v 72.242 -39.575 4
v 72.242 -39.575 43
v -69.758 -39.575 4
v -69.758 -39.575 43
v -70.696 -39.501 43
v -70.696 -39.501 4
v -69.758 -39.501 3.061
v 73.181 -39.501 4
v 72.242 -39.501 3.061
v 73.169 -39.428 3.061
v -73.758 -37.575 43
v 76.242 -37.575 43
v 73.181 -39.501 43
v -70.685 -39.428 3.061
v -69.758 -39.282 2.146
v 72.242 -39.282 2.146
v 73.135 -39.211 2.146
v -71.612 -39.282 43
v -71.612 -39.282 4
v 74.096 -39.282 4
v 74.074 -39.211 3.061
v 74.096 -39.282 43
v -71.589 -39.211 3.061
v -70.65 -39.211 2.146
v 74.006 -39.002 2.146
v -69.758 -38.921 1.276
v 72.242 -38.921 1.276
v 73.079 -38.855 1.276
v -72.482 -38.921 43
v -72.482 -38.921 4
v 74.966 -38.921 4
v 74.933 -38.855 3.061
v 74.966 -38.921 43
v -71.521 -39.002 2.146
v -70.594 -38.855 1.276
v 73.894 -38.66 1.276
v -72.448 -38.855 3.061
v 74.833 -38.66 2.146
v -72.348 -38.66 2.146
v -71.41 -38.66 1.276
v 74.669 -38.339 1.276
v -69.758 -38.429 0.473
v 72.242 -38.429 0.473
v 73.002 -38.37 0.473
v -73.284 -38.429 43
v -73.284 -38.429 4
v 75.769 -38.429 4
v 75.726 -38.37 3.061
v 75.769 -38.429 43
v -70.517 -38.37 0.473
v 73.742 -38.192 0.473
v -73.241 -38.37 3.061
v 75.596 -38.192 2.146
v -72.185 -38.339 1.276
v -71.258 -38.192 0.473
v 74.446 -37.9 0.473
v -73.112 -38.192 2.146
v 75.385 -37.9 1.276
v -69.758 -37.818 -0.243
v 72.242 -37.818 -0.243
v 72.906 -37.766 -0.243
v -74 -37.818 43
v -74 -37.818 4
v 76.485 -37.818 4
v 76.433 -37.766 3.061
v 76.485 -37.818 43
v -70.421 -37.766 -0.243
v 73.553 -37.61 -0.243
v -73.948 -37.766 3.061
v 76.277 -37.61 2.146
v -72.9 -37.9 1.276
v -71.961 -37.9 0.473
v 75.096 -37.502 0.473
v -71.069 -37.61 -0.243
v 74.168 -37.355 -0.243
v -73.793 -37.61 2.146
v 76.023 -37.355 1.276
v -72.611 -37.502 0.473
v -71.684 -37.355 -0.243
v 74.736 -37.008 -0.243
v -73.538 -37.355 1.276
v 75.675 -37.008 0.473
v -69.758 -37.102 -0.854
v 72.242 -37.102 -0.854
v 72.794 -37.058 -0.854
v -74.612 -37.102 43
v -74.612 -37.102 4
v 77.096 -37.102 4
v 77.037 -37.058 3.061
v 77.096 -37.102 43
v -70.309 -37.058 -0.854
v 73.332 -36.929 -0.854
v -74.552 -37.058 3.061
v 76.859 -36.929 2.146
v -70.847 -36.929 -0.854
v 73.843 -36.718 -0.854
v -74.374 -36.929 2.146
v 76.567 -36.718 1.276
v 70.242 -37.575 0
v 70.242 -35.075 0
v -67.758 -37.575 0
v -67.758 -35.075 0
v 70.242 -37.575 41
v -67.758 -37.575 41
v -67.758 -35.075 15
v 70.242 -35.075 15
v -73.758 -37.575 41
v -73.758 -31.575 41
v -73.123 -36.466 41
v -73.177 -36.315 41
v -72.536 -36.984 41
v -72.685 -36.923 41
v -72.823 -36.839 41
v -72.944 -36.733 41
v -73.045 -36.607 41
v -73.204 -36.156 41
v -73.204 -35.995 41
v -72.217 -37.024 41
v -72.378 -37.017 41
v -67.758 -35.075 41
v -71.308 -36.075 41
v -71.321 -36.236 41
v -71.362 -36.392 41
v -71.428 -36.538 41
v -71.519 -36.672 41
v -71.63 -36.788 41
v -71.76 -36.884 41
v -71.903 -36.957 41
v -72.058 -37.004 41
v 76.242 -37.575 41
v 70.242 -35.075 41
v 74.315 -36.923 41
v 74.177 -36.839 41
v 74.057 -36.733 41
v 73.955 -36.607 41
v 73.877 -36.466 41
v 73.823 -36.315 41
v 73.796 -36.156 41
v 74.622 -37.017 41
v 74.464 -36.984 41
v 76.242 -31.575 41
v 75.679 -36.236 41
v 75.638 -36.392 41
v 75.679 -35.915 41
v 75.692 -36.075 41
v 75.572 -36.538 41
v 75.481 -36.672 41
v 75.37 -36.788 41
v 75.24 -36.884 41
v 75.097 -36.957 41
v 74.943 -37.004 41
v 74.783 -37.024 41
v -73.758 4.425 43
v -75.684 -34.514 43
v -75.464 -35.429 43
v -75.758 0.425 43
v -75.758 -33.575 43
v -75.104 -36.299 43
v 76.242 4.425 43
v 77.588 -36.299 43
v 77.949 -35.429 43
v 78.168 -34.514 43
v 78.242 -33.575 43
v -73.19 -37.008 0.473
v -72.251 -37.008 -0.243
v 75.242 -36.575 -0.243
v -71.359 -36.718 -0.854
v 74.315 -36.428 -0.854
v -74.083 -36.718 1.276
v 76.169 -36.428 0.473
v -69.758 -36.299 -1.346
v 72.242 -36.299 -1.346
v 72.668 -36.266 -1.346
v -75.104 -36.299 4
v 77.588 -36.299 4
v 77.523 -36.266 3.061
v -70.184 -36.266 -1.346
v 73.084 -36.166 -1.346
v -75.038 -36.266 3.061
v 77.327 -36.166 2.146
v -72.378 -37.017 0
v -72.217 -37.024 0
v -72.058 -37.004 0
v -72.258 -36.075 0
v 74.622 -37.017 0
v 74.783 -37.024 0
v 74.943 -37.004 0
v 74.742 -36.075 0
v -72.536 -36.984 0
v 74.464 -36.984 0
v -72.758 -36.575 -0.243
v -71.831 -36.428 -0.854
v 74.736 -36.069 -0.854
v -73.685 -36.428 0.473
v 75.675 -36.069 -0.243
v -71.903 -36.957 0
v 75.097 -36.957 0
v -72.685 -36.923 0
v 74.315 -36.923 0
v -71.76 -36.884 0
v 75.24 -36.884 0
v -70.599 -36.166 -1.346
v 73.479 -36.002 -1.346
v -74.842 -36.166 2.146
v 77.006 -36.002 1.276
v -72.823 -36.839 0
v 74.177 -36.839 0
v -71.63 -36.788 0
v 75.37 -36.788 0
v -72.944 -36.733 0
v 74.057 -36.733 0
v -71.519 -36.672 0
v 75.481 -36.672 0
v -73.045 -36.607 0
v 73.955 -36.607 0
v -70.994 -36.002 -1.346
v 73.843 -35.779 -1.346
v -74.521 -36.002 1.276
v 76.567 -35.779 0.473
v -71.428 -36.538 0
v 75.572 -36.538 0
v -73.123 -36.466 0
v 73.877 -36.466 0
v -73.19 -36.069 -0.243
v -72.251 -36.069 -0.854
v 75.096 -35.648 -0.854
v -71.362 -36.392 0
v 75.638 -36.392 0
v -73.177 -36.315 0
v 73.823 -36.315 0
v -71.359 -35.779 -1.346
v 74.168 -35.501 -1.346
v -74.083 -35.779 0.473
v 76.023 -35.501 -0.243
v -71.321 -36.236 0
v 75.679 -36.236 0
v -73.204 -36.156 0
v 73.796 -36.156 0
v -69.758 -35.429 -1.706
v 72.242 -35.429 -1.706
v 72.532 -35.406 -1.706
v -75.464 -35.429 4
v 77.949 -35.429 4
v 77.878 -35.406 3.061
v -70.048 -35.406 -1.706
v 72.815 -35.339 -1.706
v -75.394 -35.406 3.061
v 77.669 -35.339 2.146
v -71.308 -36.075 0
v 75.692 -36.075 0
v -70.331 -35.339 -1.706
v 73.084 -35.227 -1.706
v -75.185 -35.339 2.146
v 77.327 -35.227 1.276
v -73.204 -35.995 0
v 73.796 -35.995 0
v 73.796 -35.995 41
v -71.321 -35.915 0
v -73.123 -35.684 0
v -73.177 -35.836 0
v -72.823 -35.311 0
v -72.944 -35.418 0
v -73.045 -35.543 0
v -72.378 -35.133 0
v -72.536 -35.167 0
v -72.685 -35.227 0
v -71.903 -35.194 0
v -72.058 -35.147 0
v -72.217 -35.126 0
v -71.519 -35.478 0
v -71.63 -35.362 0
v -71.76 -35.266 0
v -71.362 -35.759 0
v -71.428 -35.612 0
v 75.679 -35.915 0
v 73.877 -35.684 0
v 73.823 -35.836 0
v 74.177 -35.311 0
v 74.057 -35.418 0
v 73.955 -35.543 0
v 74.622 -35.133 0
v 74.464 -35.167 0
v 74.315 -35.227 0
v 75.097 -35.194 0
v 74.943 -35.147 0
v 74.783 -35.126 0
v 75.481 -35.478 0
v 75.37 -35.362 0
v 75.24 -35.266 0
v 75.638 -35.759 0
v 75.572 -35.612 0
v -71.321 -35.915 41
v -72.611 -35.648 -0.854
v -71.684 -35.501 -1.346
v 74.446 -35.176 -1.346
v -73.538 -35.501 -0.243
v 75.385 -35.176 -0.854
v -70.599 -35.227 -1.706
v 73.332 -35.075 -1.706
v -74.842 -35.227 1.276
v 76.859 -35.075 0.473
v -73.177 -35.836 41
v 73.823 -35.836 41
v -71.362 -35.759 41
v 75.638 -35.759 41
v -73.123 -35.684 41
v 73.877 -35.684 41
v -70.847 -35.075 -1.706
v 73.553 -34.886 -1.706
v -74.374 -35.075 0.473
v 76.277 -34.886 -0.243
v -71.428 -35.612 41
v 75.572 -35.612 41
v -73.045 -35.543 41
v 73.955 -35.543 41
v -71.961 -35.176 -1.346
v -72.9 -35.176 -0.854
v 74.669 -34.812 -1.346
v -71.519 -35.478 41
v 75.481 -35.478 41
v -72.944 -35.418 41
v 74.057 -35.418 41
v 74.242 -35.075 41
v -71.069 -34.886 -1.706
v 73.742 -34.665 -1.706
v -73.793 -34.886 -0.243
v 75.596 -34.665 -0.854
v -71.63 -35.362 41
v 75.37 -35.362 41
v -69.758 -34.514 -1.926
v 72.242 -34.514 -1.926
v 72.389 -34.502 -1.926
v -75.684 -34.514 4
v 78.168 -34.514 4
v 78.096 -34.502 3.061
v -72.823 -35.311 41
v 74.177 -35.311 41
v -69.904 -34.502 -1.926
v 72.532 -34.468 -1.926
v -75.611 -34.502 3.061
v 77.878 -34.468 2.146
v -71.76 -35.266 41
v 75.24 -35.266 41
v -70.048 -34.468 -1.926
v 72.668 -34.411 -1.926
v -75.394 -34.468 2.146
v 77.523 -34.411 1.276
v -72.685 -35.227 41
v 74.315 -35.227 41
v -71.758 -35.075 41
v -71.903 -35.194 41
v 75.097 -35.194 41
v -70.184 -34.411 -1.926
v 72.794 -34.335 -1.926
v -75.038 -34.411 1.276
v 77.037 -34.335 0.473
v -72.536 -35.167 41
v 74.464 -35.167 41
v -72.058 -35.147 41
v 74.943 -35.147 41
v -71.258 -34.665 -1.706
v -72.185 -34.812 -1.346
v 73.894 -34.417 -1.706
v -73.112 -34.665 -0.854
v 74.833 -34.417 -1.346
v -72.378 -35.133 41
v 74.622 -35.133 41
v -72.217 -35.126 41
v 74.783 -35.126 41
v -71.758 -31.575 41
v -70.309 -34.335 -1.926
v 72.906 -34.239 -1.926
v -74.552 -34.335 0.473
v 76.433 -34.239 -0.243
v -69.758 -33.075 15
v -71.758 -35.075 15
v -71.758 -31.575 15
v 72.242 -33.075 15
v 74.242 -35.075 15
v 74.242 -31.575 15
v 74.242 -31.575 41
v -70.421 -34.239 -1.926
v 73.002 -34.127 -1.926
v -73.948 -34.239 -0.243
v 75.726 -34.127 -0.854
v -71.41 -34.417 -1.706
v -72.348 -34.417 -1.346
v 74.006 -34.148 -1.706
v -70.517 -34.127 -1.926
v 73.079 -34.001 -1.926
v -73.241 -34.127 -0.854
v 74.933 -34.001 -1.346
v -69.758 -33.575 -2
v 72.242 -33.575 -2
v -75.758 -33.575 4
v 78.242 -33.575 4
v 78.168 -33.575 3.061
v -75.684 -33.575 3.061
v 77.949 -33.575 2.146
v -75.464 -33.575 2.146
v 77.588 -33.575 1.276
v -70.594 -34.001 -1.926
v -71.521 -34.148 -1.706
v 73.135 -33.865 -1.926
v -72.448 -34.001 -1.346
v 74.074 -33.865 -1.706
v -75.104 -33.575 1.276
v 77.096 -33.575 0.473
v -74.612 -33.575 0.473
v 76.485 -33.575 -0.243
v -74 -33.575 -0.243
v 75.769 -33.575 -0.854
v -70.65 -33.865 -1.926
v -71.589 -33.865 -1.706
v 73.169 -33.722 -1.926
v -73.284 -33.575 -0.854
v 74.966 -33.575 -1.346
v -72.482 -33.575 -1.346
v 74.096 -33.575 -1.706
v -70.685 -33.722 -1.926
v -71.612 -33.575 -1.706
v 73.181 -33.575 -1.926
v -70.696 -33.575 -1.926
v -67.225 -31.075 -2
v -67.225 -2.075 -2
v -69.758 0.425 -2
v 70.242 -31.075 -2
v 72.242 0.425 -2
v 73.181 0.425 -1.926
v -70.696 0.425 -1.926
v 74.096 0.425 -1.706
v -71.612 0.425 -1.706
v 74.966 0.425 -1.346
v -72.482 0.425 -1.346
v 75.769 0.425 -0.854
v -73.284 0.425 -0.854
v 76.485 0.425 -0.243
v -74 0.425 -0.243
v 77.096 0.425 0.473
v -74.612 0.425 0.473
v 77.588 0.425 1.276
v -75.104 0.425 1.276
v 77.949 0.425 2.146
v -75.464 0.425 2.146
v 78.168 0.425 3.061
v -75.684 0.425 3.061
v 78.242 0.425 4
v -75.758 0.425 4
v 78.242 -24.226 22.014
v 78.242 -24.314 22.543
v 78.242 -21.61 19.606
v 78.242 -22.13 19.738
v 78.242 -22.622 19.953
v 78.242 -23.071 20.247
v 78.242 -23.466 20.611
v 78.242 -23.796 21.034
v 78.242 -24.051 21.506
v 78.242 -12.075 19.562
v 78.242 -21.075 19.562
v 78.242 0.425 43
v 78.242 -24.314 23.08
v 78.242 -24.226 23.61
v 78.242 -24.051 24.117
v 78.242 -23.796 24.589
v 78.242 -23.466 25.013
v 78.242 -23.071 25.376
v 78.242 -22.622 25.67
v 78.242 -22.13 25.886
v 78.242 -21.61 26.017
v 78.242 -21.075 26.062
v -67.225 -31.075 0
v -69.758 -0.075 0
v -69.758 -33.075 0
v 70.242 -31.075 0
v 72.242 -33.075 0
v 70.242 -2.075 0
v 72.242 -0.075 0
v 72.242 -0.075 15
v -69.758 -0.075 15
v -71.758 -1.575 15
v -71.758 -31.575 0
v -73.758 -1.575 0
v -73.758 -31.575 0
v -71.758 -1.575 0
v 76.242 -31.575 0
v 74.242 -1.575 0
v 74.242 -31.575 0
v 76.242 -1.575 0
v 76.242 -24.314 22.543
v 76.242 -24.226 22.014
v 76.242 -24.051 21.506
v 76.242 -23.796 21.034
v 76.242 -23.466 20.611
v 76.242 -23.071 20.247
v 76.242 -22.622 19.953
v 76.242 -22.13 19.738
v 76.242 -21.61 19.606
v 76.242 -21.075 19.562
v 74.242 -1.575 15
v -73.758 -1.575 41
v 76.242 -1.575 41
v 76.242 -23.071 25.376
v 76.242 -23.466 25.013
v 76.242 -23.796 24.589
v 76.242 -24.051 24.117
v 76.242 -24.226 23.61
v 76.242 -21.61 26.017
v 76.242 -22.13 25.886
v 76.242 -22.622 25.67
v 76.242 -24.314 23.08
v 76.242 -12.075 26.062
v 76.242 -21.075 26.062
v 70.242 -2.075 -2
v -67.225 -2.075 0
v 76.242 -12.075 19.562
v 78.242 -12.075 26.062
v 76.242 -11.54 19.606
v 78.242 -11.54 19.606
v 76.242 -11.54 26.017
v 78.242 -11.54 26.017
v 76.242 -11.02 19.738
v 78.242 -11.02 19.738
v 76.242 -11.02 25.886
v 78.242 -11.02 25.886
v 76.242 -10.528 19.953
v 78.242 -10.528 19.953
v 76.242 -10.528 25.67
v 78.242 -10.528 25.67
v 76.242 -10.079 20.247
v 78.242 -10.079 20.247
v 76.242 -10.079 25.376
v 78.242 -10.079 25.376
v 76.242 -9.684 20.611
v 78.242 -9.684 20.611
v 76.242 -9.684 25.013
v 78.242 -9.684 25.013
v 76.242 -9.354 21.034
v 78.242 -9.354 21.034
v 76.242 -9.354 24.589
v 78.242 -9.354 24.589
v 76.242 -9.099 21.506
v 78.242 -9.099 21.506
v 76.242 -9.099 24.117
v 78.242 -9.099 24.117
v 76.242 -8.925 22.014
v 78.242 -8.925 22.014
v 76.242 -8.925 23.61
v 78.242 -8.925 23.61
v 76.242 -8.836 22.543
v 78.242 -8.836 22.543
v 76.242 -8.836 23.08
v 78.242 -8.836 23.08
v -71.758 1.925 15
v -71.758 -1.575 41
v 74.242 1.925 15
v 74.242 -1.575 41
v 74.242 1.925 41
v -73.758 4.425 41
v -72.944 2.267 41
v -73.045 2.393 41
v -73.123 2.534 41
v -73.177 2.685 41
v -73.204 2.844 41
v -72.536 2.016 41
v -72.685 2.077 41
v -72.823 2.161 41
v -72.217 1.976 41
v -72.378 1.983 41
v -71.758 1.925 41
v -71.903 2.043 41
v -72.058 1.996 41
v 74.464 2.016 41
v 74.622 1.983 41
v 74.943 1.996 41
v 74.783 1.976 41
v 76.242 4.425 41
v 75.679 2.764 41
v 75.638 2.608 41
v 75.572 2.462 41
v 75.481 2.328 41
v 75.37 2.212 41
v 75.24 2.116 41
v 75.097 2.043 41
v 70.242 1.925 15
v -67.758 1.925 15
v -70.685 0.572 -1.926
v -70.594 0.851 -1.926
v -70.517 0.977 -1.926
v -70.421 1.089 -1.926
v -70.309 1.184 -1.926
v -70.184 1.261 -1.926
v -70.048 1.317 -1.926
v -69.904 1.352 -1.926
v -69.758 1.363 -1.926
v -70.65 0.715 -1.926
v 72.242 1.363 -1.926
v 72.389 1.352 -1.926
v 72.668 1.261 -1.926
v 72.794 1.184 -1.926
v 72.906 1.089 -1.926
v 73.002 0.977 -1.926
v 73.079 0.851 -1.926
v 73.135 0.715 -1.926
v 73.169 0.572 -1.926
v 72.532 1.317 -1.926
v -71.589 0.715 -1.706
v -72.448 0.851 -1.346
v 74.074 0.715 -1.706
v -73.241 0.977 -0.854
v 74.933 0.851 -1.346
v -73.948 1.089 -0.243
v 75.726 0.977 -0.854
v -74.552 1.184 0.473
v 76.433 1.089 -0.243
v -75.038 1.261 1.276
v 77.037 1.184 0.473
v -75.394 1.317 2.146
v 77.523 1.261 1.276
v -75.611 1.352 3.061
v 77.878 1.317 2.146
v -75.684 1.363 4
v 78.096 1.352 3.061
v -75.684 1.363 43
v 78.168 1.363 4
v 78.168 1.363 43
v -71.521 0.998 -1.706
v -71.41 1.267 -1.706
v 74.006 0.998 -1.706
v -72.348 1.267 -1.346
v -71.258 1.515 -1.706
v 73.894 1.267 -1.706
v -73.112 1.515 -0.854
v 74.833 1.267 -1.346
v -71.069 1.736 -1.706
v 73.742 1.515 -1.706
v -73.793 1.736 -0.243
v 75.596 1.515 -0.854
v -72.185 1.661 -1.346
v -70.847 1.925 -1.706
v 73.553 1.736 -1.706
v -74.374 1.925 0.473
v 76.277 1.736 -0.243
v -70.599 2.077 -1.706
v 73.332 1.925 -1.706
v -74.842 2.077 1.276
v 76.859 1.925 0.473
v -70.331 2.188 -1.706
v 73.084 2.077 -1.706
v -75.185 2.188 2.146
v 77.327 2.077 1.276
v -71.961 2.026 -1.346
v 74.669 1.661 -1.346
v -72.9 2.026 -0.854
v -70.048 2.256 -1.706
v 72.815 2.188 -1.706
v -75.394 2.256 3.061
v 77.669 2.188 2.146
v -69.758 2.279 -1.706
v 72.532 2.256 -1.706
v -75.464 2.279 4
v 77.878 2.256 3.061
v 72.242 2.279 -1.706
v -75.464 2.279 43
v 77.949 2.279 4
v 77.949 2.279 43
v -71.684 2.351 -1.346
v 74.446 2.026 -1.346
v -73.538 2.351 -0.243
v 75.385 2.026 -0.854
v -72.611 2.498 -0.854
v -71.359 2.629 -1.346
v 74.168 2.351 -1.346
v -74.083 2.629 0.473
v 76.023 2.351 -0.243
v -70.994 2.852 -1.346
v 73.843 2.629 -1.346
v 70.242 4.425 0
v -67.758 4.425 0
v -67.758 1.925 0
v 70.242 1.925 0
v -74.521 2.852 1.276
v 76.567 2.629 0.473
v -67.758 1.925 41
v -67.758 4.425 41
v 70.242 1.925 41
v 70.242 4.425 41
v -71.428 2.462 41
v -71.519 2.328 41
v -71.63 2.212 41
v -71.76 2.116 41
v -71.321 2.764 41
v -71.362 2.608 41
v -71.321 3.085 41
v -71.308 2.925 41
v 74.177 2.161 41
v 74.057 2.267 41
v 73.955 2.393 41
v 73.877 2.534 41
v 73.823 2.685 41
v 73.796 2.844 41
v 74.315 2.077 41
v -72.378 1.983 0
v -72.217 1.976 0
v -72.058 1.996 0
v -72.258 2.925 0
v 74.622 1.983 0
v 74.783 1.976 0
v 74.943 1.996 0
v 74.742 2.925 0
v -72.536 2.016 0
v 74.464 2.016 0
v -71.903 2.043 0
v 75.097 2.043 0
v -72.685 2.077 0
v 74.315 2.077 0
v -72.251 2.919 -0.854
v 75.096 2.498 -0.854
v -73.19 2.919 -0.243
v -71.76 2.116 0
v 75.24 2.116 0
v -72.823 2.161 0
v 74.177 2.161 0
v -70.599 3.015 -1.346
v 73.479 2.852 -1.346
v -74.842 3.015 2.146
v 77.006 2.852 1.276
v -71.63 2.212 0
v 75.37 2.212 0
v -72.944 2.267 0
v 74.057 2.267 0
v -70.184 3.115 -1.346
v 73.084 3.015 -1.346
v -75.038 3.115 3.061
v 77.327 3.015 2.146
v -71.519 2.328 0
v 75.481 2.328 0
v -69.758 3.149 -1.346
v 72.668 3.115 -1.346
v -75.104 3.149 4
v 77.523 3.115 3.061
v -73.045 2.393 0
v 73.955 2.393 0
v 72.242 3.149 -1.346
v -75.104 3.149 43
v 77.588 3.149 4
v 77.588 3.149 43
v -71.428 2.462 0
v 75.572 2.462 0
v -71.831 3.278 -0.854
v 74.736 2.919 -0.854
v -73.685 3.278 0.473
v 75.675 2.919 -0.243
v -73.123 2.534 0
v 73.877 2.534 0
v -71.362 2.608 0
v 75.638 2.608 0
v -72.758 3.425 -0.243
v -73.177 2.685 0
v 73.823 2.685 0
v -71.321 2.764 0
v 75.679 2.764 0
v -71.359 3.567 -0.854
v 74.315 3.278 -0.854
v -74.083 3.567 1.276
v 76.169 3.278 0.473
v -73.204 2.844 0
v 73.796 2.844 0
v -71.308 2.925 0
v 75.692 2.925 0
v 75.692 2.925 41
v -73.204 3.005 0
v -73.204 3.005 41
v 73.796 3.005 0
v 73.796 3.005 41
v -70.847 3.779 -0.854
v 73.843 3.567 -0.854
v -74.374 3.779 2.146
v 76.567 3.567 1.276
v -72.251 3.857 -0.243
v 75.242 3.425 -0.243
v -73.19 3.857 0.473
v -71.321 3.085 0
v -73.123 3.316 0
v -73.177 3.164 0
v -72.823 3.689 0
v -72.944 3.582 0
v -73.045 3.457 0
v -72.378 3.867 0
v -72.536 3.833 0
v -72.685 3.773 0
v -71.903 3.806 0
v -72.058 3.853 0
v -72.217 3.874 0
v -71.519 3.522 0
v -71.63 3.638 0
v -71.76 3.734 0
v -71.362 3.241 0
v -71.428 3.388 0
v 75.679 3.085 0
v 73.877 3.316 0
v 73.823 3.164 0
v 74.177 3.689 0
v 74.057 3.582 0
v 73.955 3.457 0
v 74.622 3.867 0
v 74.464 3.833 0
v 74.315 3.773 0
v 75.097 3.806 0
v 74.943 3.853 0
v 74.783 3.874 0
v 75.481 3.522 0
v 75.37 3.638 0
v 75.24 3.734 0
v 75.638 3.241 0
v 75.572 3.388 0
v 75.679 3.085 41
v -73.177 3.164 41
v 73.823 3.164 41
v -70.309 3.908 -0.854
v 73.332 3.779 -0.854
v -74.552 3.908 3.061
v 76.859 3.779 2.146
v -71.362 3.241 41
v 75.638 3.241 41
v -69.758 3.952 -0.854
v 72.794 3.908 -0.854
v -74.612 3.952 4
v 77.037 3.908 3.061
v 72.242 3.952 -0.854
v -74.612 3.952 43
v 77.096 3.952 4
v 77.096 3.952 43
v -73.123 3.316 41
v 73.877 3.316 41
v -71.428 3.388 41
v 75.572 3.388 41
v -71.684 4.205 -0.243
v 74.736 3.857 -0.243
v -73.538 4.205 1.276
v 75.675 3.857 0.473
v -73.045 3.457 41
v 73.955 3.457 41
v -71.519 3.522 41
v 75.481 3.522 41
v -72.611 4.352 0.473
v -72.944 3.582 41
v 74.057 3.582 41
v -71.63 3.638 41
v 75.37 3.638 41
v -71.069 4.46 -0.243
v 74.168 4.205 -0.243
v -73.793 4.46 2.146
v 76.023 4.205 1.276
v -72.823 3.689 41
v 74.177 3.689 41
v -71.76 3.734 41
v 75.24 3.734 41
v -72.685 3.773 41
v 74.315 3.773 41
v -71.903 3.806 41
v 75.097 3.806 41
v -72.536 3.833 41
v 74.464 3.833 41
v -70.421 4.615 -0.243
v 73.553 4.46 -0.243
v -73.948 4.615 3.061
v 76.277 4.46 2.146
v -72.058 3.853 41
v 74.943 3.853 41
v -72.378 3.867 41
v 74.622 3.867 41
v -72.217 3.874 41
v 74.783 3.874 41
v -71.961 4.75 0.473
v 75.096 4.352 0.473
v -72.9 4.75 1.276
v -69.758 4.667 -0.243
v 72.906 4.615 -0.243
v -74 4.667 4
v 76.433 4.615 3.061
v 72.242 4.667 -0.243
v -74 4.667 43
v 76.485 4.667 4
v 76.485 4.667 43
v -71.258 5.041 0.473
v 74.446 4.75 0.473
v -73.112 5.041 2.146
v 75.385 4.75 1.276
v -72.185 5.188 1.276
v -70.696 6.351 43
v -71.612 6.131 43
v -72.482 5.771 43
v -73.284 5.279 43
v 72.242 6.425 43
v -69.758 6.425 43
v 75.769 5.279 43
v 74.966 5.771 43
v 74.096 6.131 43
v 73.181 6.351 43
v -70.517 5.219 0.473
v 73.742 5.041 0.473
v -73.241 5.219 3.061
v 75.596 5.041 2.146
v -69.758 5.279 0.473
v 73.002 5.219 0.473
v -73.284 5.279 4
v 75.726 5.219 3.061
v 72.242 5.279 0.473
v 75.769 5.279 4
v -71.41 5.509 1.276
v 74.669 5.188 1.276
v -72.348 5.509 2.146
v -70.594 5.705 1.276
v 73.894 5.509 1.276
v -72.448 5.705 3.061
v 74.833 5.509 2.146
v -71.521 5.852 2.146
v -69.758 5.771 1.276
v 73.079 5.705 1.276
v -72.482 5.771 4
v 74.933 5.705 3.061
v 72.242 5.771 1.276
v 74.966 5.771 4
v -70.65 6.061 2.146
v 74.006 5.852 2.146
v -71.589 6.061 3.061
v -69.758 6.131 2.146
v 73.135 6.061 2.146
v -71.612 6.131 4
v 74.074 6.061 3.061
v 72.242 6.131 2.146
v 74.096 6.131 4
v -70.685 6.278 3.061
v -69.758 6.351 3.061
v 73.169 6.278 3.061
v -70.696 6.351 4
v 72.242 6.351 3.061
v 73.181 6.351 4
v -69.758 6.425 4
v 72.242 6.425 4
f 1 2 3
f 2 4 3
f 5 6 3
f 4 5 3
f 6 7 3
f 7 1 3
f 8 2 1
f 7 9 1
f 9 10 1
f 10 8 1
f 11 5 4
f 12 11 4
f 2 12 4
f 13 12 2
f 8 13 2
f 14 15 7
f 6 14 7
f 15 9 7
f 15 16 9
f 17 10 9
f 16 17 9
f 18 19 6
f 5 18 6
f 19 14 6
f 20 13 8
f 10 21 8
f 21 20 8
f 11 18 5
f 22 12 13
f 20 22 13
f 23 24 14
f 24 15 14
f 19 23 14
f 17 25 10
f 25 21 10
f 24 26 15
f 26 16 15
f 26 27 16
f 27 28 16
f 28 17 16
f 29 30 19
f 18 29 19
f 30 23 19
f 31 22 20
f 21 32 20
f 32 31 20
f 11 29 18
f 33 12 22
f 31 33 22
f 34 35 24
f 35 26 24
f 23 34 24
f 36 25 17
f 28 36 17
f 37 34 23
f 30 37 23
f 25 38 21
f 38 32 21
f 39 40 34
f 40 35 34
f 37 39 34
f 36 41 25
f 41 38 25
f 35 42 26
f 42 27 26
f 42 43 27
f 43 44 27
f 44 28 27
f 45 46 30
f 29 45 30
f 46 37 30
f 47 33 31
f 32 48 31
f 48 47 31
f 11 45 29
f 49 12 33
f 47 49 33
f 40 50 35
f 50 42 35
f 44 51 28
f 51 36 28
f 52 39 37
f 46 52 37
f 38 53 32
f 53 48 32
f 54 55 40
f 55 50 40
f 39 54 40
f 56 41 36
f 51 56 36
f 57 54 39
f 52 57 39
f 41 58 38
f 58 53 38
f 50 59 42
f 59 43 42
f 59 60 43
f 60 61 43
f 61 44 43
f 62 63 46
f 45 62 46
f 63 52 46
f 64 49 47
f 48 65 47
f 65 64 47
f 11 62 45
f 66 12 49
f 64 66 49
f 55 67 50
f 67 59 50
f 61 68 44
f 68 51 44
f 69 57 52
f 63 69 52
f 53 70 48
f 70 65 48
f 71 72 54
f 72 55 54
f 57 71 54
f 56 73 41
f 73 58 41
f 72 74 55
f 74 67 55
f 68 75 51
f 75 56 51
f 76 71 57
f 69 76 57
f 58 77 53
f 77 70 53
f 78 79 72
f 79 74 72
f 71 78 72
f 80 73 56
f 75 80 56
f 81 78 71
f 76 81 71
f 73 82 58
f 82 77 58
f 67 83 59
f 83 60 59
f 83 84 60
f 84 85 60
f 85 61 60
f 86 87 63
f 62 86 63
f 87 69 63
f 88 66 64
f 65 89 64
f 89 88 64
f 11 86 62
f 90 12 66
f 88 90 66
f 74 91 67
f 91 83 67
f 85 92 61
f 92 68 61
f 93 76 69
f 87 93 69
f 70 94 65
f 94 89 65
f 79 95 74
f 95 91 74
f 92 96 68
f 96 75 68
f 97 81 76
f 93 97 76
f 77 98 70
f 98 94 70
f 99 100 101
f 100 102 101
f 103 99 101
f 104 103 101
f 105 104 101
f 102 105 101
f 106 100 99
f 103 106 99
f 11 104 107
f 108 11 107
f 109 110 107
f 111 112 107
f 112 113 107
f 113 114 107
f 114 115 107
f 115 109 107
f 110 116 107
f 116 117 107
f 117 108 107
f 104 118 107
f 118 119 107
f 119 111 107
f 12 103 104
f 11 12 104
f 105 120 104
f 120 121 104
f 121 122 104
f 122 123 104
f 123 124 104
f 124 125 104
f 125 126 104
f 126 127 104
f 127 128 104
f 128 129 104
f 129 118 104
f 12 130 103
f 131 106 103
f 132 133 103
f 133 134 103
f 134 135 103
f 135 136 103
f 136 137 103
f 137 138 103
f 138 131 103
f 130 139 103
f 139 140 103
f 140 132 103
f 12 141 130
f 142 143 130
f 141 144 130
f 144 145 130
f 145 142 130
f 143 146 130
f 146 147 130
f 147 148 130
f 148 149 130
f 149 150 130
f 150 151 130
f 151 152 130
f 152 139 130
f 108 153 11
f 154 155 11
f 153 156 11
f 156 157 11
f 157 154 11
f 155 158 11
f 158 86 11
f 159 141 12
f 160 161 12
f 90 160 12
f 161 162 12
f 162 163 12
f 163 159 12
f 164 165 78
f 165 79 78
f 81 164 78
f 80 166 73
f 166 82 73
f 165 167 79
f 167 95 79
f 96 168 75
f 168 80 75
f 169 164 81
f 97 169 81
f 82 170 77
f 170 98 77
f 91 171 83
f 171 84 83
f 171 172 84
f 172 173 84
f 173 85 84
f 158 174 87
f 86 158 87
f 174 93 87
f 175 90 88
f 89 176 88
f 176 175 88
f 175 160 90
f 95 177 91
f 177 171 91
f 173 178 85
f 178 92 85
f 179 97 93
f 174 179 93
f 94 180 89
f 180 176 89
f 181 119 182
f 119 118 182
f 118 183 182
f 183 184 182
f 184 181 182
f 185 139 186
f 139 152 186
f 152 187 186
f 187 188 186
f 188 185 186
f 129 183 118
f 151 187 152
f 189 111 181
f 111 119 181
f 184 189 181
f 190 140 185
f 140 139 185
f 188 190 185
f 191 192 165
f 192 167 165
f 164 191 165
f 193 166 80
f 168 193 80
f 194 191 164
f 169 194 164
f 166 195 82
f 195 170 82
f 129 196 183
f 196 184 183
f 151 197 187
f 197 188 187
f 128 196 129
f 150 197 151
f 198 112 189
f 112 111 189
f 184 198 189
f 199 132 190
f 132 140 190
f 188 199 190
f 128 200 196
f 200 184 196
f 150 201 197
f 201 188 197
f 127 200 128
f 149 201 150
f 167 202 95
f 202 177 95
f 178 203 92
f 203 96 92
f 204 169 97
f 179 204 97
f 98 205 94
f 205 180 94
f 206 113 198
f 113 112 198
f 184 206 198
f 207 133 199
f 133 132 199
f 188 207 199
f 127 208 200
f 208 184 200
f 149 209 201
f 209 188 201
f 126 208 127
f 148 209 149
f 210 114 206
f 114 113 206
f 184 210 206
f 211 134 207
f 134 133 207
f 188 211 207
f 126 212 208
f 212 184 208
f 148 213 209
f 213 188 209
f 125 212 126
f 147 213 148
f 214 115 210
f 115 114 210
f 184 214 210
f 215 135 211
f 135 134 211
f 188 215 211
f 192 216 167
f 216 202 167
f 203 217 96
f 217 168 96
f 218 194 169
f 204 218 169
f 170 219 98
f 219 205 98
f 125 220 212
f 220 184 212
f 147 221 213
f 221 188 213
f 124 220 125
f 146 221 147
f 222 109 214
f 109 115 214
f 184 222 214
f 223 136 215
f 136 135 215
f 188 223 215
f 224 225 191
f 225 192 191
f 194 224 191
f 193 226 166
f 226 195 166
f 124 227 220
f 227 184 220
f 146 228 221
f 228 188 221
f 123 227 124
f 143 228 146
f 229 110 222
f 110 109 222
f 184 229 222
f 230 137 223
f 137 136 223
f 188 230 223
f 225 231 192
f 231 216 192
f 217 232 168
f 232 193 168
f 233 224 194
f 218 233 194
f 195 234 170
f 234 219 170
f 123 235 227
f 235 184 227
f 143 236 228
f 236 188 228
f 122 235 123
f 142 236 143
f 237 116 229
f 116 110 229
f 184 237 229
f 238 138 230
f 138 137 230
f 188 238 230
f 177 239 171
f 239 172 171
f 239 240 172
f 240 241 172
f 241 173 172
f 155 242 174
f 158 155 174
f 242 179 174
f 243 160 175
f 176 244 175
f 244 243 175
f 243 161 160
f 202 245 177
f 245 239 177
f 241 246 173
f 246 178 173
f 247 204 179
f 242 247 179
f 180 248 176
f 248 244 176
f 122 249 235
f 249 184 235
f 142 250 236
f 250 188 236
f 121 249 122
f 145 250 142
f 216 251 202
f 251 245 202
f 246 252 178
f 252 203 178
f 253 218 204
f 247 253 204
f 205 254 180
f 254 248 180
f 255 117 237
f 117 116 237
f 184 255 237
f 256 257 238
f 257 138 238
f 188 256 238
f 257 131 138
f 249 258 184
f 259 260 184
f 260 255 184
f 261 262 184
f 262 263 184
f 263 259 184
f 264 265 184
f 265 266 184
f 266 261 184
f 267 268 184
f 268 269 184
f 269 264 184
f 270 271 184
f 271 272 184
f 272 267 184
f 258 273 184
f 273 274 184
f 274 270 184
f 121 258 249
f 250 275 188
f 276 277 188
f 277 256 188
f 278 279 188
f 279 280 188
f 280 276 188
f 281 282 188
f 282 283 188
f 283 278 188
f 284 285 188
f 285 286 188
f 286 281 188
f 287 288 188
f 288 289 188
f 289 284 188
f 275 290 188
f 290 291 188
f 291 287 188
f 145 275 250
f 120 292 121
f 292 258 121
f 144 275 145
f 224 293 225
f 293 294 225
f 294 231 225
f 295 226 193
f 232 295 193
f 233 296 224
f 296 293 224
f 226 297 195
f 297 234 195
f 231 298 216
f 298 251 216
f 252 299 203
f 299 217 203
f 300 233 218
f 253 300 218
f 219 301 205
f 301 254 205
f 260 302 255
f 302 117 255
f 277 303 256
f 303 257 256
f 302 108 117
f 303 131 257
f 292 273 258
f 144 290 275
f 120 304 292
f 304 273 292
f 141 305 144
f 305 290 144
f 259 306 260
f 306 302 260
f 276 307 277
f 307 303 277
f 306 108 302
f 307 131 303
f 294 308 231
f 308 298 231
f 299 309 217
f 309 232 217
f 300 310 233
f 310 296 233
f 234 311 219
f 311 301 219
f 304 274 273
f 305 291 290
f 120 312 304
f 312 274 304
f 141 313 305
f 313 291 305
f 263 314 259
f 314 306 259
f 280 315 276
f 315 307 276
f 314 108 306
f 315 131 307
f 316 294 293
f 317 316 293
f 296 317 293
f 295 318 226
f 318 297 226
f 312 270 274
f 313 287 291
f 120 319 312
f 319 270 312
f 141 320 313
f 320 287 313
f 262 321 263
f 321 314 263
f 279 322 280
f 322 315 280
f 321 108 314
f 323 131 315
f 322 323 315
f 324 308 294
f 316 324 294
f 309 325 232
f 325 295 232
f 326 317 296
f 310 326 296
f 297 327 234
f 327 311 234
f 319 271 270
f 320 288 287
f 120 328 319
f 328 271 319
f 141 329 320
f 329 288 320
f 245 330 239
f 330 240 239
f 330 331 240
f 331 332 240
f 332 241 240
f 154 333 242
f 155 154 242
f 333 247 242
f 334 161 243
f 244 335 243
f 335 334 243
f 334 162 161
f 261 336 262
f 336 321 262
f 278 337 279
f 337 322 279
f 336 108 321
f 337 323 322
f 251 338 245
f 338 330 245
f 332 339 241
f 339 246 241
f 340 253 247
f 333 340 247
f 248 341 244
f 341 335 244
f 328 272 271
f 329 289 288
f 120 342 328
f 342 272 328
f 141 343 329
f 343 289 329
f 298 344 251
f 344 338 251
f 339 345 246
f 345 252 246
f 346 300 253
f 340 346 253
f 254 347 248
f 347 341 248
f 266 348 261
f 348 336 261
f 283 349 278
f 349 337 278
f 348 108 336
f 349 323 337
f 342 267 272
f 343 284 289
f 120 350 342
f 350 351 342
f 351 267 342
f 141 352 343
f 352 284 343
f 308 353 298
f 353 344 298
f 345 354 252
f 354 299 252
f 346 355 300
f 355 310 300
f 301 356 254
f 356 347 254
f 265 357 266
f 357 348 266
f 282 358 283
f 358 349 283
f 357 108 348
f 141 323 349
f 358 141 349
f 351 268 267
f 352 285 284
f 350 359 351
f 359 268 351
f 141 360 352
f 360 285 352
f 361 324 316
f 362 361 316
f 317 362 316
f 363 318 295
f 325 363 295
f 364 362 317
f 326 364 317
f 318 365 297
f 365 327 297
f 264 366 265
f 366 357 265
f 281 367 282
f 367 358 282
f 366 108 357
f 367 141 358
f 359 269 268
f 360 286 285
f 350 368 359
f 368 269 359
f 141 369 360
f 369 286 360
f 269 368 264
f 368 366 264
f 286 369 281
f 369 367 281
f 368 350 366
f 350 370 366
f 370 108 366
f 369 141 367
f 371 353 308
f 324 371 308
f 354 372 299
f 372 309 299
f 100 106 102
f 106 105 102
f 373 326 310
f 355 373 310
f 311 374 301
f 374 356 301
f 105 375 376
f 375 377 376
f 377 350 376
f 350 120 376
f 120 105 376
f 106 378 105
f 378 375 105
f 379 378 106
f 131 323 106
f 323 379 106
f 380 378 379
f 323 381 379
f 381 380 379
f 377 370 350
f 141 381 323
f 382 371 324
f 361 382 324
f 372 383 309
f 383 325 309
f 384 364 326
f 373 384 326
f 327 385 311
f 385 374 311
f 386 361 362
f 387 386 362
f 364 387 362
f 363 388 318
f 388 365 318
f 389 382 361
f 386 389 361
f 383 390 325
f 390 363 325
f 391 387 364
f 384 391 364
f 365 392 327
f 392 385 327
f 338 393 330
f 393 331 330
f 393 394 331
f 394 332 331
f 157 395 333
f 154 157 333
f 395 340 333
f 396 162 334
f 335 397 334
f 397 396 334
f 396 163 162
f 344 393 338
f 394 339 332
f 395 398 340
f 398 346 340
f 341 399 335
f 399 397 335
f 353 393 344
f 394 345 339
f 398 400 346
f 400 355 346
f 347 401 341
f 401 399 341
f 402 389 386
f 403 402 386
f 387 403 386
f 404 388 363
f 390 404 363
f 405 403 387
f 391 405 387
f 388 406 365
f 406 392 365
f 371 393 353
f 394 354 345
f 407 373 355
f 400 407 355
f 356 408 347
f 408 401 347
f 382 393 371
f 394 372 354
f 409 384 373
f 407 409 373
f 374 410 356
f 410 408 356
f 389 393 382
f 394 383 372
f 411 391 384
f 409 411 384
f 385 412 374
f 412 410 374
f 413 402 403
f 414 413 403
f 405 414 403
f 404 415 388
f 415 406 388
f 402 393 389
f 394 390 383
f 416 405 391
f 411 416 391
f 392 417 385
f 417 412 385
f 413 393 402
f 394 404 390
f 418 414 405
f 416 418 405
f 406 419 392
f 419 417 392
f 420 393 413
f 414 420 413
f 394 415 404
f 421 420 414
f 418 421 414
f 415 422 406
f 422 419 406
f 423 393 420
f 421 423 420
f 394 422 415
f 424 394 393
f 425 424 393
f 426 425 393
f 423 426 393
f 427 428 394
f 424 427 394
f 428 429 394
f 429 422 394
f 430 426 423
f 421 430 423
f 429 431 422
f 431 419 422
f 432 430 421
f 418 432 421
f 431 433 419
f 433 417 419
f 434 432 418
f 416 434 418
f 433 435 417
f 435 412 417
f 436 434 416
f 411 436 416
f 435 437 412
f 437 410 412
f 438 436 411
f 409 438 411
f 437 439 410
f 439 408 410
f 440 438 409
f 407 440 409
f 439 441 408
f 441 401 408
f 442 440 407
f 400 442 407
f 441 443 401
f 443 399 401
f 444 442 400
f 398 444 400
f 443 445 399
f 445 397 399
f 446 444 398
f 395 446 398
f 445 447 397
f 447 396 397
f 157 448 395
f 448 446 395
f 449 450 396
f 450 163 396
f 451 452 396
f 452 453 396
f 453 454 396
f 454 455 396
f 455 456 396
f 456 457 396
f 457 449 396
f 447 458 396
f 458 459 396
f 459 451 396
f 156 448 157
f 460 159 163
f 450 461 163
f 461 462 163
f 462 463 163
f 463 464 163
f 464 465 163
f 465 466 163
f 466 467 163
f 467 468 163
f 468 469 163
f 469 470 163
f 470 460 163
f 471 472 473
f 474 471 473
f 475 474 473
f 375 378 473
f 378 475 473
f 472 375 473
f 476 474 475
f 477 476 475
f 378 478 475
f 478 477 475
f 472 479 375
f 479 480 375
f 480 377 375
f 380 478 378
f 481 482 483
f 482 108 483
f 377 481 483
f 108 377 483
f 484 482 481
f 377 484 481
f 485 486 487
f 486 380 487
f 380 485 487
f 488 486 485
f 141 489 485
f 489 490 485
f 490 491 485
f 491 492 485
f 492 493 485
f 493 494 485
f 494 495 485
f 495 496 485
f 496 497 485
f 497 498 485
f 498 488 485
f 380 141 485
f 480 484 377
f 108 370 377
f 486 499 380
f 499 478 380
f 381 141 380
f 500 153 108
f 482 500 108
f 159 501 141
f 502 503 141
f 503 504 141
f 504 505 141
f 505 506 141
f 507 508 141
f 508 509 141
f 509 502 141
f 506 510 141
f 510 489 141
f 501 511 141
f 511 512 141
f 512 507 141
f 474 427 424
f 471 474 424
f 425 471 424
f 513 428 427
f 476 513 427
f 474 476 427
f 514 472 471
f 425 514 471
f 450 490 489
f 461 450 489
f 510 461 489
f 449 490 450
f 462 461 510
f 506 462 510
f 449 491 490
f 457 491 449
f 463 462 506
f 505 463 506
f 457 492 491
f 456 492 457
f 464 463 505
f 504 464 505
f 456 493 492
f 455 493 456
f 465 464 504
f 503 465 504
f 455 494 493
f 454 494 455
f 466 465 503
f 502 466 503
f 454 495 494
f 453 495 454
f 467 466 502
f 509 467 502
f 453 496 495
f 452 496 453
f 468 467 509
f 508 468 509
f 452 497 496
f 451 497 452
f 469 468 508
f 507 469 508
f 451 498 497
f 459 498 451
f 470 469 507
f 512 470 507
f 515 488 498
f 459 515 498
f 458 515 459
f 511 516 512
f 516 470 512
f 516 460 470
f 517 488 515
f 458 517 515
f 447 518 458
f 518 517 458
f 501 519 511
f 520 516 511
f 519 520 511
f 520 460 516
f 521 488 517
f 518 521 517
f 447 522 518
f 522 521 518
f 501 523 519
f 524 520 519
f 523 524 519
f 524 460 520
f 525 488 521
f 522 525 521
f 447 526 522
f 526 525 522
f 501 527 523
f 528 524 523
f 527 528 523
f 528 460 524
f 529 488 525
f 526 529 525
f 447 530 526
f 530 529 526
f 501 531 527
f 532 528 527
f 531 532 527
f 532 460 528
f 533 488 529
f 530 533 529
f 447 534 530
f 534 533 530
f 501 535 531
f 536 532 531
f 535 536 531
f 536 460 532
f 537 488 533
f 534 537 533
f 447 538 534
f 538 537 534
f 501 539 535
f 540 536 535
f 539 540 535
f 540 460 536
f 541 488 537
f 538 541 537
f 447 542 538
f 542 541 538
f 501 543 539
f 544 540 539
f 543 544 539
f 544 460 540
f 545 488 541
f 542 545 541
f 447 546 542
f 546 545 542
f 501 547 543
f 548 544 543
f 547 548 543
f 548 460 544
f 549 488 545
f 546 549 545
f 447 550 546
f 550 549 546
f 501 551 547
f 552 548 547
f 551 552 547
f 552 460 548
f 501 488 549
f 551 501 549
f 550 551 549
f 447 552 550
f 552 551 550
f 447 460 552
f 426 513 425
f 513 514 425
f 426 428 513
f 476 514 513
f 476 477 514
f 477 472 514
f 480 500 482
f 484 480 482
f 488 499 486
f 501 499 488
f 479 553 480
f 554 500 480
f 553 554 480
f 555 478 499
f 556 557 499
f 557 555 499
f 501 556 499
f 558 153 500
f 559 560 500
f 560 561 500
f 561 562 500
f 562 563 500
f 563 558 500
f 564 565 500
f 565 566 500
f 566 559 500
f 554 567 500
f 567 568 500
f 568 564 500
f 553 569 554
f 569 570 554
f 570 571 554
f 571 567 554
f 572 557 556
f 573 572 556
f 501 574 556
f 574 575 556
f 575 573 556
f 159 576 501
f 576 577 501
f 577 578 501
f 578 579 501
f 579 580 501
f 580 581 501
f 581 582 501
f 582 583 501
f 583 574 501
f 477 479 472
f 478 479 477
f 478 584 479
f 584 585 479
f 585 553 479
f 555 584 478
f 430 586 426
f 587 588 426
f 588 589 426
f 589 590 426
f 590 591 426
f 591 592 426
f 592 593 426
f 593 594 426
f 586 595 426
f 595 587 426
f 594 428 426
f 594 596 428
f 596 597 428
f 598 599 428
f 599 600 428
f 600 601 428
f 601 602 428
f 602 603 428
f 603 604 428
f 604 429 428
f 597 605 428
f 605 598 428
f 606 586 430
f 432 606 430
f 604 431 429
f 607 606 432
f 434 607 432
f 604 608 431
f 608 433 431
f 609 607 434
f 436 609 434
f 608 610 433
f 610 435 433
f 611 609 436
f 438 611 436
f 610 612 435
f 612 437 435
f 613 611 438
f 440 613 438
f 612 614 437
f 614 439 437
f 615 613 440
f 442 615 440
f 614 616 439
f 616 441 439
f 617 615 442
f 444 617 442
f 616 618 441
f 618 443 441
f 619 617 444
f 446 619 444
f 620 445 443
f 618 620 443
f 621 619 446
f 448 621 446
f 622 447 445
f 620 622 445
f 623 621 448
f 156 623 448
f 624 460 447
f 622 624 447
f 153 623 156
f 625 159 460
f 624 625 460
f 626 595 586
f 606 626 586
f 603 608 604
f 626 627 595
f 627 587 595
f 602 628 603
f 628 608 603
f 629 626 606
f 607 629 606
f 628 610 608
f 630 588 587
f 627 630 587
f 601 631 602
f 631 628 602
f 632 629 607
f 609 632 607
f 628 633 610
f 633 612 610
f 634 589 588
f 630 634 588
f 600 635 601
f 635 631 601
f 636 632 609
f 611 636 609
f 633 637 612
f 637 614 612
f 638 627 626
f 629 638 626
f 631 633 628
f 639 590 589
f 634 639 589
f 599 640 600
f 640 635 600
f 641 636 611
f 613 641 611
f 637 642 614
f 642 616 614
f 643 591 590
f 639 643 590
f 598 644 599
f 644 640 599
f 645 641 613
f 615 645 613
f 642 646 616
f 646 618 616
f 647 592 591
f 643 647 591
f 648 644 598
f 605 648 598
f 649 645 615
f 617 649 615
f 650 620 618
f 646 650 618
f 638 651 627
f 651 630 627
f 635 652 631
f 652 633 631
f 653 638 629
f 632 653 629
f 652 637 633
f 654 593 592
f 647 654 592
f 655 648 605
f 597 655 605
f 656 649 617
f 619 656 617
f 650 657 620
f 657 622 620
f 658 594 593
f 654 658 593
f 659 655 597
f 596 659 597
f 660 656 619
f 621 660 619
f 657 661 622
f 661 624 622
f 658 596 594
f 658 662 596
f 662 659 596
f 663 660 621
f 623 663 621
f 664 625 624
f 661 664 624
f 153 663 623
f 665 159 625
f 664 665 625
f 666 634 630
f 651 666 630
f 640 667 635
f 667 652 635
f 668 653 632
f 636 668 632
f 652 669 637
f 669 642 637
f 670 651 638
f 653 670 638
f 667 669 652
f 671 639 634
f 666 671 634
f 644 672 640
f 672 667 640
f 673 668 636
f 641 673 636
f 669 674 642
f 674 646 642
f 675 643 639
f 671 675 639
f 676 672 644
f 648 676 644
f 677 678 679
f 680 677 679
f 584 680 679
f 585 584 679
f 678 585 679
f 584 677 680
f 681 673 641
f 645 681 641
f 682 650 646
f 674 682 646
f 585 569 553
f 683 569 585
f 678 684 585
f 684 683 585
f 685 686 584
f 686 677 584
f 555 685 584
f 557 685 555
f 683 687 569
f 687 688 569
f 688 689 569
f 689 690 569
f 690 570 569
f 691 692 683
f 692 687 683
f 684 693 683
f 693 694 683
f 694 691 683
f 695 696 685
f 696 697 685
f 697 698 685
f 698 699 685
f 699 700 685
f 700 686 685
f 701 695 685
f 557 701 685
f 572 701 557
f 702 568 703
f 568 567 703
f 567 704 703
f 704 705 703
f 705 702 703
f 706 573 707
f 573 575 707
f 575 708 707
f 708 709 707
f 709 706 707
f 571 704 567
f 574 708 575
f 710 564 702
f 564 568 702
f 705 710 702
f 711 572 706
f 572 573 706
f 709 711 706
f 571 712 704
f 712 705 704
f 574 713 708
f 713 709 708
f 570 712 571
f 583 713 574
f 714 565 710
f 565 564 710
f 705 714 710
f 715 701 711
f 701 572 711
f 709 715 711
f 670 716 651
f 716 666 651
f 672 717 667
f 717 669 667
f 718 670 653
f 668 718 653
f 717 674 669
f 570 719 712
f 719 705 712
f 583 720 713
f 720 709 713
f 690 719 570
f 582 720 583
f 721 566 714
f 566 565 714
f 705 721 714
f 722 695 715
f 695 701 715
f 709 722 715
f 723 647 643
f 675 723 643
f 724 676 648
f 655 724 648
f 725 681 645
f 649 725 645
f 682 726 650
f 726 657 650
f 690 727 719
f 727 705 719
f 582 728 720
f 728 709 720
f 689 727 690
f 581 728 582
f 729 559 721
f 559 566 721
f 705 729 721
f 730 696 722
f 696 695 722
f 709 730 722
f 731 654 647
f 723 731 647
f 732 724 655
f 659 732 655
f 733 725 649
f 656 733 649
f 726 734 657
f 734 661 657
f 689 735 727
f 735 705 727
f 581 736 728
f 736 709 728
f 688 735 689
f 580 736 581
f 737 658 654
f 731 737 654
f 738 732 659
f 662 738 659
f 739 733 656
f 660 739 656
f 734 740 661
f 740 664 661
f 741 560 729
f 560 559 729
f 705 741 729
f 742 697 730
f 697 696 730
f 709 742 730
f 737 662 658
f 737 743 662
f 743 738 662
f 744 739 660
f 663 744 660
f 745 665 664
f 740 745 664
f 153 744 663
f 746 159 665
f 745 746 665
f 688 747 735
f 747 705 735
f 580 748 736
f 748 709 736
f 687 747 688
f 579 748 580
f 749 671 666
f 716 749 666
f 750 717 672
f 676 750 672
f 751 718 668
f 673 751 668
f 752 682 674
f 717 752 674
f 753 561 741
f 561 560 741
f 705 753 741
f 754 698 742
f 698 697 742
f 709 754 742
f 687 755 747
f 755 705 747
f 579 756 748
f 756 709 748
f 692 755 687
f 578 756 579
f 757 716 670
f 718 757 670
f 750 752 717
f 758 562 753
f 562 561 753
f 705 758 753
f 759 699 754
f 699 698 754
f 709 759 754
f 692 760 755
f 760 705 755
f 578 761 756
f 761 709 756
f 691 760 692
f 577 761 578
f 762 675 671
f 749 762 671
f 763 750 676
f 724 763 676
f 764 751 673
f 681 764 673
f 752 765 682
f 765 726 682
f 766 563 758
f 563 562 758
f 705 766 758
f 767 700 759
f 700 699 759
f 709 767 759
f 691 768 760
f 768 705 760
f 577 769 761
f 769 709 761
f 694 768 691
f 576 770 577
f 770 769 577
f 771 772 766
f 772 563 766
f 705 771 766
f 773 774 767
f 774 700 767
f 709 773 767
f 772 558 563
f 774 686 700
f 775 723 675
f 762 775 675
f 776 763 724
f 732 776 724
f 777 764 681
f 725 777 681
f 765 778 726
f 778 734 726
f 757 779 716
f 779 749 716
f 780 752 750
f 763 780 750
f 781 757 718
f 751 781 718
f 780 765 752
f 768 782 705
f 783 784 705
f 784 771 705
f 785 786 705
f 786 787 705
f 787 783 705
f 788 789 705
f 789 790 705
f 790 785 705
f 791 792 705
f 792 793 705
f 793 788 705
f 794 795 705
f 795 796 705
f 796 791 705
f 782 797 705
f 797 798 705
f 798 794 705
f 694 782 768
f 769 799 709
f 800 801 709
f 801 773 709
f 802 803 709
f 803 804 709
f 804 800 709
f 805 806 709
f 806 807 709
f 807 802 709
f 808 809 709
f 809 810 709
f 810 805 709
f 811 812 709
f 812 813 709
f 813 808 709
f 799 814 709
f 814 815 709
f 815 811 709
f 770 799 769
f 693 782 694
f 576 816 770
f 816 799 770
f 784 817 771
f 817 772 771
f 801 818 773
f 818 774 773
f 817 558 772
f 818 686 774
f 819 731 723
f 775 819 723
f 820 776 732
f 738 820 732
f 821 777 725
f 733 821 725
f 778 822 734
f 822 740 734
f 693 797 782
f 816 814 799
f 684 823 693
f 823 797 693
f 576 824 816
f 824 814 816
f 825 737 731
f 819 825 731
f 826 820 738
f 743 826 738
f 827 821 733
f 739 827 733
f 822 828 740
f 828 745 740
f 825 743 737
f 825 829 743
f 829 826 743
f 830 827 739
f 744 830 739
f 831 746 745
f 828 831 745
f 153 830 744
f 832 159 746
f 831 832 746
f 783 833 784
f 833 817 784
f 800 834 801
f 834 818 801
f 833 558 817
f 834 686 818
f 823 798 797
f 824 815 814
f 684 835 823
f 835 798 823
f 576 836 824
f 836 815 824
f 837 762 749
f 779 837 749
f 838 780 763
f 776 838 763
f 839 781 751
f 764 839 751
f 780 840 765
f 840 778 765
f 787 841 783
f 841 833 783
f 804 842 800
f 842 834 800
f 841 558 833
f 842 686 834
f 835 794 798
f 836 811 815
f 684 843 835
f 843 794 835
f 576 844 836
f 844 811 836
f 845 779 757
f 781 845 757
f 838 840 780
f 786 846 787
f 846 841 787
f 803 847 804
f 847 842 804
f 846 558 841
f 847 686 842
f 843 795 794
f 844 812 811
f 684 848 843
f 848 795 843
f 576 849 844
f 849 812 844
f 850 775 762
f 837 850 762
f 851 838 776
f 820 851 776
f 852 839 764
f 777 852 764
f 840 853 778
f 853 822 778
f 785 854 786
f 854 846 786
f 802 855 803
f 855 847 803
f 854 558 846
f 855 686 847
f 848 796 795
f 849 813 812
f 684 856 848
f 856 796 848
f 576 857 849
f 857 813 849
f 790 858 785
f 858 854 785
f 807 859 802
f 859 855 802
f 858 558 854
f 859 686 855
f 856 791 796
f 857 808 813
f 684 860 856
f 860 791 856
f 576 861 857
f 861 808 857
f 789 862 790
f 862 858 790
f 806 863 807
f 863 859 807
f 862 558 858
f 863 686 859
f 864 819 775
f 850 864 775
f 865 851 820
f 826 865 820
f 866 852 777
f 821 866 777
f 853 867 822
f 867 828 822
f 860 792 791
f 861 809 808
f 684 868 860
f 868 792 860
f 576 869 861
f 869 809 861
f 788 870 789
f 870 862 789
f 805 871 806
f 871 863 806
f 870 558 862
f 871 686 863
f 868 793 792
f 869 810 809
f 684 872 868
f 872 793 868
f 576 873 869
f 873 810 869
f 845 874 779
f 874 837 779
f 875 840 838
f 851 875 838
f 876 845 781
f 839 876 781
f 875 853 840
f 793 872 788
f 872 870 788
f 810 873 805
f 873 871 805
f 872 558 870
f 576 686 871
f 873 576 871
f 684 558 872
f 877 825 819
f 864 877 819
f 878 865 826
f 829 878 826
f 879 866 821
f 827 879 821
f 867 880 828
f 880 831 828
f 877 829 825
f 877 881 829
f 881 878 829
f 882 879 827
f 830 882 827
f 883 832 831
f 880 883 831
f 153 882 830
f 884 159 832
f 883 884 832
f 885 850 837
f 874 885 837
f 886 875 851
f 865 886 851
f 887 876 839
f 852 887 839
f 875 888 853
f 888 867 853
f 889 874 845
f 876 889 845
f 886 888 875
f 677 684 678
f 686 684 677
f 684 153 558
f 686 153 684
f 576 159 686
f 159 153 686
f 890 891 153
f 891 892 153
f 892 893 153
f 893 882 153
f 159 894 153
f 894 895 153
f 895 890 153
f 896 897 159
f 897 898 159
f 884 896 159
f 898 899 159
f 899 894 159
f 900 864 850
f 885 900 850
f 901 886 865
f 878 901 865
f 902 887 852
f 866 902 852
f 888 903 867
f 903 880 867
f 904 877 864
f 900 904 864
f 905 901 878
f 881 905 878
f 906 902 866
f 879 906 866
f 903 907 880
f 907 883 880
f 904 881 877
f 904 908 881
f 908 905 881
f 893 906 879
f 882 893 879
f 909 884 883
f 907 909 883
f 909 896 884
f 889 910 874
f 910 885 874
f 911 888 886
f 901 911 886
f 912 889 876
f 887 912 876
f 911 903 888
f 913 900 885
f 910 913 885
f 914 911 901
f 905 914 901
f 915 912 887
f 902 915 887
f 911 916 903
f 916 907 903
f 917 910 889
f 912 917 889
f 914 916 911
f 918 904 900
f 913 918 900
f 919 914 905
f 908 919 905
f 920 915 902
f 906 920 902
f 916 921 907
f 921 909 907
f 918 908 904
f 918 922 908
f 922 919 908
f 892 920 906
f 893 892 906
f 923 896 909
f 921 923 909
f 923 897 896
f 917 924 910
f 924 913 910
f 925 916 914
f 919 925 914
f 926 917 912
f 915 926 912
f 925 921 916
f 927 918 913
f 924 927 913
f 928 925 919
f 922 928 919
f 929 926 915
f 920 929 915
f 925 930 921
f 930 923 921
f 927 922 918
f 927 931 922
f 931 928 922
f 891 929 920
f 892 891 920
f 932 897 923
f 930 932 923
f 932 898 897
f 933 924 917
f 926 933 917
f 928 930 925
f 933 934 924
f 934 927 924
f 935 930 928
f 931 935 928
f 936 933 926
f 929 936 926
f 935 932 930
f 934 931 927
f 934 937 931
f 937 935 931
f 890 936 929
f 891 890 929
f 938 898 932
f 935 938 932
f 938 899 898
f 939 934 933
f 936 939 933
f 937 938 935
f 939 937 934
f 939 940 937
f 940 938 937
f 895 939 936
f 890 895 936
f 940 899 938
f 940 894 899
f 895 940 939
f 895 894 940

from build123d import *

# Parameters (mm, degrees)
SKETCH_1_W          = 154
SKETCH_1_H          = 46
SKETCH_1_W_2        = 150
SKETCH_1_H_2        = 42
EXTRUDE_1_DEPTH     = 43
SKETCH_2_W          = 154
SKETCH_2_H          = 46
EXTRUDE_2_DEPTH     = 2
SKETCH_3_W          = 137.467290134
SKETCH_3_H          = 29
CUT_EXTRUDE_1_DEPTH = 2
SKETCH_3_4_W        = 146
SKETCH_3_4_H        = 37
SKETCH_3_4_W_2      = 142
SKETCH_3_4_H_2      = 33
EXTRUDE_3_DEPTH     = 15
EXTRUDE_9_DEPTH     = 41
SKETCH_8_R          = 0.95
CUT_EXTRUDE_2_DEPTH = 41
FILLET_2_R          = 6
FILLET_3_R          = 6
CUT_EXTRUDE_3_DEPTH = 41


with BuildPart() as part:
    # 草图1 → 凸台-拉伸1 (new body)
    with BuildSketch(Plane.XY):
        with Locations((1.242355366, -16.575185829)):
            Rectangle(SKETCH_1_W, SKETCH_1_H)
        with Locations((1.242355366, -16.575185829)):
            Rectangle(SKETCH_1_W_2, SKETCH_1_H_2, mode=Mode.SUBTRACT)
    extrude(amount=EXTRUDE_1_DEPTH)

    # 草图2 → 凸台-拉伸2 (add)
    with BuildSketch(Plane(origin=(0, 0, 0), x_dir=(-1, 0, 0), z_dir=(0, 0, -1))):
        with Locations((-1.242355366, -16.575185829)):
            Rectangle(SKETCH_2_W, SKETCH_2_H)
    extrude(amount=EXTRUDE_2_DEPTH)

    # 草图3 → 切除-拉伸1 (cut)
    with BuildSketch(Plane.XY):
        with Locations((1.508710299, -16.575185829)):
            Rectangle(SKETCH_3_W, SKETCH_3_H)
    extrude(amount=-CUT_EXTRUDE_1_DEPTH, mode=Mode.SUBTRACT)

    # 草图3<4> → 凸台-拉伸3 (add)
    with BuildSketch(Plane.XY):
        with Locations((1.242355366, -16.575185829)):
            Rectangle(SKETCH_3_4_W, SKETCH_3_4_H)
        with Locations((1.242355366, -16.575185829)):
            Rectangle(SKETCH_3_4_W_2, SKETCH_3_4_H_2, mode=Mode.SUBTRACT)
    extrude(amount=EXTRUDE_3_DEPTH)

    # 草图7 → 凸台-拉伸9 (add)
    with BuildSketch(Plane.XY):
        Polygon((-73.757644634, 4.424814171), (-67.757644634, 4.424814171), (-67.757644634, 1.924814171), (-71.757644634, 1.924814171), (-71.757644634, -1.575185829), (-73.757644634, -1.575185829), align=None)
        Polygon((74.242355366, -1.575185829), (76.242355366, -1.575185829), (76.242355366, 4.424814171), (70.242355366, 4.424814171), (70.242355366, 1.924814171), (74.242355366, 1.924814171), align=None)
        Polygon((74.242355366, -35.075185829), (74.242355366, -31.575185829), (76.242355366, -31.575185829), (76.242355366, -37.575185829), (70.242355366, -37.575185829), (70.242355366, -35.075185829), align=None)
        Polygon((-71.757644634, -31.575185829), (-73.757644634, -31.575185829), (-73.757644634, -37.575185829), (-67.757644634, -37.575185829), (-67.757644634, -35.075185829), (-71.757644634, -35.075185829), align=None)
    extrude(amount=EXTRUDE_9_DEPTH)

    # 草图8 → 切除-拉伸2 (cut)
    with BuildSketch(Plane.XY.offset(41)):
        with Locations((-72.257644634, 2.924814171)):
            Circle(SKETCH_8_R)
        with Locations((-72.257644634, -36.075185829)):
            Circle(SKETCH_8_R)
        with Locations((74.742355366, -36.075185829)):
            Circle(SKETCH_8_R)
        with Locations((74.742355366, 2.924814171)):
            Circle(SKETCH_8_R)
    extrude(amount=-CUT_EXTRUDE_2_DEPTH, mode=Mode.SUBTRACT)

    # 圆角2
    fillet_2_edges = [part.edges().sort_by_distance(p)[0] for p in [
        (-75.757644634, 6.424814171, 20.5),
        (78.242355366, 6.424814171, 20.5),
        (78.242355366, -39.575185829, 20.5),
        (-75.757644634, -39.575185829, 20.5),
    ]]
    fillet(fillet_2_edges, radius=FILLET_2_R)

    # 圆角3
    fillet_3_edges = [part.edges().sort_by_distance(p)[0] for p in [
        (78.242355366, -16.575185829, -2),
        (1.242355366, -39.575185829, -2),
        (-75.757644634, -16.575185829, -2),
        (1.242355366, 6.424814171, -2),
        (-74.000285321, 4.667454858, -2),
        (-74.000285321, -37.817826516, -2),
        (76.484996053, 4.667454858, -2),
        (76.484996053, -37.817826516, -2),
    ]]
    fillet(fillet_3_edges, radius=FILLET_3_R)

    # 草图12 → 切除-拉伸3 (cut)
    with BuildSketch(Plane.ZY.offset(-76.242355366)):
        with BuildLine():
            Line((26.061737121, -12.075185829), (26.061737121, -21.075185829))
            ThreePointArc((26.061737121, -21.075185829), (22.811737121, -24.325185829), (19.561737121, -21.075185829))
            Line((19.561737121, -21.075185829), (19.561737121, -12.075185829))
            ThreePointArc((19.561737121, -12.075185829), (22.811737121, -8.825185829), (26.061737121, -12.075185829))
        make_face()
    extrude(amount=-CUT_EXTRUDE_3_DEPTH, mode=Mode.SUBTRACT)


solid = part.part
